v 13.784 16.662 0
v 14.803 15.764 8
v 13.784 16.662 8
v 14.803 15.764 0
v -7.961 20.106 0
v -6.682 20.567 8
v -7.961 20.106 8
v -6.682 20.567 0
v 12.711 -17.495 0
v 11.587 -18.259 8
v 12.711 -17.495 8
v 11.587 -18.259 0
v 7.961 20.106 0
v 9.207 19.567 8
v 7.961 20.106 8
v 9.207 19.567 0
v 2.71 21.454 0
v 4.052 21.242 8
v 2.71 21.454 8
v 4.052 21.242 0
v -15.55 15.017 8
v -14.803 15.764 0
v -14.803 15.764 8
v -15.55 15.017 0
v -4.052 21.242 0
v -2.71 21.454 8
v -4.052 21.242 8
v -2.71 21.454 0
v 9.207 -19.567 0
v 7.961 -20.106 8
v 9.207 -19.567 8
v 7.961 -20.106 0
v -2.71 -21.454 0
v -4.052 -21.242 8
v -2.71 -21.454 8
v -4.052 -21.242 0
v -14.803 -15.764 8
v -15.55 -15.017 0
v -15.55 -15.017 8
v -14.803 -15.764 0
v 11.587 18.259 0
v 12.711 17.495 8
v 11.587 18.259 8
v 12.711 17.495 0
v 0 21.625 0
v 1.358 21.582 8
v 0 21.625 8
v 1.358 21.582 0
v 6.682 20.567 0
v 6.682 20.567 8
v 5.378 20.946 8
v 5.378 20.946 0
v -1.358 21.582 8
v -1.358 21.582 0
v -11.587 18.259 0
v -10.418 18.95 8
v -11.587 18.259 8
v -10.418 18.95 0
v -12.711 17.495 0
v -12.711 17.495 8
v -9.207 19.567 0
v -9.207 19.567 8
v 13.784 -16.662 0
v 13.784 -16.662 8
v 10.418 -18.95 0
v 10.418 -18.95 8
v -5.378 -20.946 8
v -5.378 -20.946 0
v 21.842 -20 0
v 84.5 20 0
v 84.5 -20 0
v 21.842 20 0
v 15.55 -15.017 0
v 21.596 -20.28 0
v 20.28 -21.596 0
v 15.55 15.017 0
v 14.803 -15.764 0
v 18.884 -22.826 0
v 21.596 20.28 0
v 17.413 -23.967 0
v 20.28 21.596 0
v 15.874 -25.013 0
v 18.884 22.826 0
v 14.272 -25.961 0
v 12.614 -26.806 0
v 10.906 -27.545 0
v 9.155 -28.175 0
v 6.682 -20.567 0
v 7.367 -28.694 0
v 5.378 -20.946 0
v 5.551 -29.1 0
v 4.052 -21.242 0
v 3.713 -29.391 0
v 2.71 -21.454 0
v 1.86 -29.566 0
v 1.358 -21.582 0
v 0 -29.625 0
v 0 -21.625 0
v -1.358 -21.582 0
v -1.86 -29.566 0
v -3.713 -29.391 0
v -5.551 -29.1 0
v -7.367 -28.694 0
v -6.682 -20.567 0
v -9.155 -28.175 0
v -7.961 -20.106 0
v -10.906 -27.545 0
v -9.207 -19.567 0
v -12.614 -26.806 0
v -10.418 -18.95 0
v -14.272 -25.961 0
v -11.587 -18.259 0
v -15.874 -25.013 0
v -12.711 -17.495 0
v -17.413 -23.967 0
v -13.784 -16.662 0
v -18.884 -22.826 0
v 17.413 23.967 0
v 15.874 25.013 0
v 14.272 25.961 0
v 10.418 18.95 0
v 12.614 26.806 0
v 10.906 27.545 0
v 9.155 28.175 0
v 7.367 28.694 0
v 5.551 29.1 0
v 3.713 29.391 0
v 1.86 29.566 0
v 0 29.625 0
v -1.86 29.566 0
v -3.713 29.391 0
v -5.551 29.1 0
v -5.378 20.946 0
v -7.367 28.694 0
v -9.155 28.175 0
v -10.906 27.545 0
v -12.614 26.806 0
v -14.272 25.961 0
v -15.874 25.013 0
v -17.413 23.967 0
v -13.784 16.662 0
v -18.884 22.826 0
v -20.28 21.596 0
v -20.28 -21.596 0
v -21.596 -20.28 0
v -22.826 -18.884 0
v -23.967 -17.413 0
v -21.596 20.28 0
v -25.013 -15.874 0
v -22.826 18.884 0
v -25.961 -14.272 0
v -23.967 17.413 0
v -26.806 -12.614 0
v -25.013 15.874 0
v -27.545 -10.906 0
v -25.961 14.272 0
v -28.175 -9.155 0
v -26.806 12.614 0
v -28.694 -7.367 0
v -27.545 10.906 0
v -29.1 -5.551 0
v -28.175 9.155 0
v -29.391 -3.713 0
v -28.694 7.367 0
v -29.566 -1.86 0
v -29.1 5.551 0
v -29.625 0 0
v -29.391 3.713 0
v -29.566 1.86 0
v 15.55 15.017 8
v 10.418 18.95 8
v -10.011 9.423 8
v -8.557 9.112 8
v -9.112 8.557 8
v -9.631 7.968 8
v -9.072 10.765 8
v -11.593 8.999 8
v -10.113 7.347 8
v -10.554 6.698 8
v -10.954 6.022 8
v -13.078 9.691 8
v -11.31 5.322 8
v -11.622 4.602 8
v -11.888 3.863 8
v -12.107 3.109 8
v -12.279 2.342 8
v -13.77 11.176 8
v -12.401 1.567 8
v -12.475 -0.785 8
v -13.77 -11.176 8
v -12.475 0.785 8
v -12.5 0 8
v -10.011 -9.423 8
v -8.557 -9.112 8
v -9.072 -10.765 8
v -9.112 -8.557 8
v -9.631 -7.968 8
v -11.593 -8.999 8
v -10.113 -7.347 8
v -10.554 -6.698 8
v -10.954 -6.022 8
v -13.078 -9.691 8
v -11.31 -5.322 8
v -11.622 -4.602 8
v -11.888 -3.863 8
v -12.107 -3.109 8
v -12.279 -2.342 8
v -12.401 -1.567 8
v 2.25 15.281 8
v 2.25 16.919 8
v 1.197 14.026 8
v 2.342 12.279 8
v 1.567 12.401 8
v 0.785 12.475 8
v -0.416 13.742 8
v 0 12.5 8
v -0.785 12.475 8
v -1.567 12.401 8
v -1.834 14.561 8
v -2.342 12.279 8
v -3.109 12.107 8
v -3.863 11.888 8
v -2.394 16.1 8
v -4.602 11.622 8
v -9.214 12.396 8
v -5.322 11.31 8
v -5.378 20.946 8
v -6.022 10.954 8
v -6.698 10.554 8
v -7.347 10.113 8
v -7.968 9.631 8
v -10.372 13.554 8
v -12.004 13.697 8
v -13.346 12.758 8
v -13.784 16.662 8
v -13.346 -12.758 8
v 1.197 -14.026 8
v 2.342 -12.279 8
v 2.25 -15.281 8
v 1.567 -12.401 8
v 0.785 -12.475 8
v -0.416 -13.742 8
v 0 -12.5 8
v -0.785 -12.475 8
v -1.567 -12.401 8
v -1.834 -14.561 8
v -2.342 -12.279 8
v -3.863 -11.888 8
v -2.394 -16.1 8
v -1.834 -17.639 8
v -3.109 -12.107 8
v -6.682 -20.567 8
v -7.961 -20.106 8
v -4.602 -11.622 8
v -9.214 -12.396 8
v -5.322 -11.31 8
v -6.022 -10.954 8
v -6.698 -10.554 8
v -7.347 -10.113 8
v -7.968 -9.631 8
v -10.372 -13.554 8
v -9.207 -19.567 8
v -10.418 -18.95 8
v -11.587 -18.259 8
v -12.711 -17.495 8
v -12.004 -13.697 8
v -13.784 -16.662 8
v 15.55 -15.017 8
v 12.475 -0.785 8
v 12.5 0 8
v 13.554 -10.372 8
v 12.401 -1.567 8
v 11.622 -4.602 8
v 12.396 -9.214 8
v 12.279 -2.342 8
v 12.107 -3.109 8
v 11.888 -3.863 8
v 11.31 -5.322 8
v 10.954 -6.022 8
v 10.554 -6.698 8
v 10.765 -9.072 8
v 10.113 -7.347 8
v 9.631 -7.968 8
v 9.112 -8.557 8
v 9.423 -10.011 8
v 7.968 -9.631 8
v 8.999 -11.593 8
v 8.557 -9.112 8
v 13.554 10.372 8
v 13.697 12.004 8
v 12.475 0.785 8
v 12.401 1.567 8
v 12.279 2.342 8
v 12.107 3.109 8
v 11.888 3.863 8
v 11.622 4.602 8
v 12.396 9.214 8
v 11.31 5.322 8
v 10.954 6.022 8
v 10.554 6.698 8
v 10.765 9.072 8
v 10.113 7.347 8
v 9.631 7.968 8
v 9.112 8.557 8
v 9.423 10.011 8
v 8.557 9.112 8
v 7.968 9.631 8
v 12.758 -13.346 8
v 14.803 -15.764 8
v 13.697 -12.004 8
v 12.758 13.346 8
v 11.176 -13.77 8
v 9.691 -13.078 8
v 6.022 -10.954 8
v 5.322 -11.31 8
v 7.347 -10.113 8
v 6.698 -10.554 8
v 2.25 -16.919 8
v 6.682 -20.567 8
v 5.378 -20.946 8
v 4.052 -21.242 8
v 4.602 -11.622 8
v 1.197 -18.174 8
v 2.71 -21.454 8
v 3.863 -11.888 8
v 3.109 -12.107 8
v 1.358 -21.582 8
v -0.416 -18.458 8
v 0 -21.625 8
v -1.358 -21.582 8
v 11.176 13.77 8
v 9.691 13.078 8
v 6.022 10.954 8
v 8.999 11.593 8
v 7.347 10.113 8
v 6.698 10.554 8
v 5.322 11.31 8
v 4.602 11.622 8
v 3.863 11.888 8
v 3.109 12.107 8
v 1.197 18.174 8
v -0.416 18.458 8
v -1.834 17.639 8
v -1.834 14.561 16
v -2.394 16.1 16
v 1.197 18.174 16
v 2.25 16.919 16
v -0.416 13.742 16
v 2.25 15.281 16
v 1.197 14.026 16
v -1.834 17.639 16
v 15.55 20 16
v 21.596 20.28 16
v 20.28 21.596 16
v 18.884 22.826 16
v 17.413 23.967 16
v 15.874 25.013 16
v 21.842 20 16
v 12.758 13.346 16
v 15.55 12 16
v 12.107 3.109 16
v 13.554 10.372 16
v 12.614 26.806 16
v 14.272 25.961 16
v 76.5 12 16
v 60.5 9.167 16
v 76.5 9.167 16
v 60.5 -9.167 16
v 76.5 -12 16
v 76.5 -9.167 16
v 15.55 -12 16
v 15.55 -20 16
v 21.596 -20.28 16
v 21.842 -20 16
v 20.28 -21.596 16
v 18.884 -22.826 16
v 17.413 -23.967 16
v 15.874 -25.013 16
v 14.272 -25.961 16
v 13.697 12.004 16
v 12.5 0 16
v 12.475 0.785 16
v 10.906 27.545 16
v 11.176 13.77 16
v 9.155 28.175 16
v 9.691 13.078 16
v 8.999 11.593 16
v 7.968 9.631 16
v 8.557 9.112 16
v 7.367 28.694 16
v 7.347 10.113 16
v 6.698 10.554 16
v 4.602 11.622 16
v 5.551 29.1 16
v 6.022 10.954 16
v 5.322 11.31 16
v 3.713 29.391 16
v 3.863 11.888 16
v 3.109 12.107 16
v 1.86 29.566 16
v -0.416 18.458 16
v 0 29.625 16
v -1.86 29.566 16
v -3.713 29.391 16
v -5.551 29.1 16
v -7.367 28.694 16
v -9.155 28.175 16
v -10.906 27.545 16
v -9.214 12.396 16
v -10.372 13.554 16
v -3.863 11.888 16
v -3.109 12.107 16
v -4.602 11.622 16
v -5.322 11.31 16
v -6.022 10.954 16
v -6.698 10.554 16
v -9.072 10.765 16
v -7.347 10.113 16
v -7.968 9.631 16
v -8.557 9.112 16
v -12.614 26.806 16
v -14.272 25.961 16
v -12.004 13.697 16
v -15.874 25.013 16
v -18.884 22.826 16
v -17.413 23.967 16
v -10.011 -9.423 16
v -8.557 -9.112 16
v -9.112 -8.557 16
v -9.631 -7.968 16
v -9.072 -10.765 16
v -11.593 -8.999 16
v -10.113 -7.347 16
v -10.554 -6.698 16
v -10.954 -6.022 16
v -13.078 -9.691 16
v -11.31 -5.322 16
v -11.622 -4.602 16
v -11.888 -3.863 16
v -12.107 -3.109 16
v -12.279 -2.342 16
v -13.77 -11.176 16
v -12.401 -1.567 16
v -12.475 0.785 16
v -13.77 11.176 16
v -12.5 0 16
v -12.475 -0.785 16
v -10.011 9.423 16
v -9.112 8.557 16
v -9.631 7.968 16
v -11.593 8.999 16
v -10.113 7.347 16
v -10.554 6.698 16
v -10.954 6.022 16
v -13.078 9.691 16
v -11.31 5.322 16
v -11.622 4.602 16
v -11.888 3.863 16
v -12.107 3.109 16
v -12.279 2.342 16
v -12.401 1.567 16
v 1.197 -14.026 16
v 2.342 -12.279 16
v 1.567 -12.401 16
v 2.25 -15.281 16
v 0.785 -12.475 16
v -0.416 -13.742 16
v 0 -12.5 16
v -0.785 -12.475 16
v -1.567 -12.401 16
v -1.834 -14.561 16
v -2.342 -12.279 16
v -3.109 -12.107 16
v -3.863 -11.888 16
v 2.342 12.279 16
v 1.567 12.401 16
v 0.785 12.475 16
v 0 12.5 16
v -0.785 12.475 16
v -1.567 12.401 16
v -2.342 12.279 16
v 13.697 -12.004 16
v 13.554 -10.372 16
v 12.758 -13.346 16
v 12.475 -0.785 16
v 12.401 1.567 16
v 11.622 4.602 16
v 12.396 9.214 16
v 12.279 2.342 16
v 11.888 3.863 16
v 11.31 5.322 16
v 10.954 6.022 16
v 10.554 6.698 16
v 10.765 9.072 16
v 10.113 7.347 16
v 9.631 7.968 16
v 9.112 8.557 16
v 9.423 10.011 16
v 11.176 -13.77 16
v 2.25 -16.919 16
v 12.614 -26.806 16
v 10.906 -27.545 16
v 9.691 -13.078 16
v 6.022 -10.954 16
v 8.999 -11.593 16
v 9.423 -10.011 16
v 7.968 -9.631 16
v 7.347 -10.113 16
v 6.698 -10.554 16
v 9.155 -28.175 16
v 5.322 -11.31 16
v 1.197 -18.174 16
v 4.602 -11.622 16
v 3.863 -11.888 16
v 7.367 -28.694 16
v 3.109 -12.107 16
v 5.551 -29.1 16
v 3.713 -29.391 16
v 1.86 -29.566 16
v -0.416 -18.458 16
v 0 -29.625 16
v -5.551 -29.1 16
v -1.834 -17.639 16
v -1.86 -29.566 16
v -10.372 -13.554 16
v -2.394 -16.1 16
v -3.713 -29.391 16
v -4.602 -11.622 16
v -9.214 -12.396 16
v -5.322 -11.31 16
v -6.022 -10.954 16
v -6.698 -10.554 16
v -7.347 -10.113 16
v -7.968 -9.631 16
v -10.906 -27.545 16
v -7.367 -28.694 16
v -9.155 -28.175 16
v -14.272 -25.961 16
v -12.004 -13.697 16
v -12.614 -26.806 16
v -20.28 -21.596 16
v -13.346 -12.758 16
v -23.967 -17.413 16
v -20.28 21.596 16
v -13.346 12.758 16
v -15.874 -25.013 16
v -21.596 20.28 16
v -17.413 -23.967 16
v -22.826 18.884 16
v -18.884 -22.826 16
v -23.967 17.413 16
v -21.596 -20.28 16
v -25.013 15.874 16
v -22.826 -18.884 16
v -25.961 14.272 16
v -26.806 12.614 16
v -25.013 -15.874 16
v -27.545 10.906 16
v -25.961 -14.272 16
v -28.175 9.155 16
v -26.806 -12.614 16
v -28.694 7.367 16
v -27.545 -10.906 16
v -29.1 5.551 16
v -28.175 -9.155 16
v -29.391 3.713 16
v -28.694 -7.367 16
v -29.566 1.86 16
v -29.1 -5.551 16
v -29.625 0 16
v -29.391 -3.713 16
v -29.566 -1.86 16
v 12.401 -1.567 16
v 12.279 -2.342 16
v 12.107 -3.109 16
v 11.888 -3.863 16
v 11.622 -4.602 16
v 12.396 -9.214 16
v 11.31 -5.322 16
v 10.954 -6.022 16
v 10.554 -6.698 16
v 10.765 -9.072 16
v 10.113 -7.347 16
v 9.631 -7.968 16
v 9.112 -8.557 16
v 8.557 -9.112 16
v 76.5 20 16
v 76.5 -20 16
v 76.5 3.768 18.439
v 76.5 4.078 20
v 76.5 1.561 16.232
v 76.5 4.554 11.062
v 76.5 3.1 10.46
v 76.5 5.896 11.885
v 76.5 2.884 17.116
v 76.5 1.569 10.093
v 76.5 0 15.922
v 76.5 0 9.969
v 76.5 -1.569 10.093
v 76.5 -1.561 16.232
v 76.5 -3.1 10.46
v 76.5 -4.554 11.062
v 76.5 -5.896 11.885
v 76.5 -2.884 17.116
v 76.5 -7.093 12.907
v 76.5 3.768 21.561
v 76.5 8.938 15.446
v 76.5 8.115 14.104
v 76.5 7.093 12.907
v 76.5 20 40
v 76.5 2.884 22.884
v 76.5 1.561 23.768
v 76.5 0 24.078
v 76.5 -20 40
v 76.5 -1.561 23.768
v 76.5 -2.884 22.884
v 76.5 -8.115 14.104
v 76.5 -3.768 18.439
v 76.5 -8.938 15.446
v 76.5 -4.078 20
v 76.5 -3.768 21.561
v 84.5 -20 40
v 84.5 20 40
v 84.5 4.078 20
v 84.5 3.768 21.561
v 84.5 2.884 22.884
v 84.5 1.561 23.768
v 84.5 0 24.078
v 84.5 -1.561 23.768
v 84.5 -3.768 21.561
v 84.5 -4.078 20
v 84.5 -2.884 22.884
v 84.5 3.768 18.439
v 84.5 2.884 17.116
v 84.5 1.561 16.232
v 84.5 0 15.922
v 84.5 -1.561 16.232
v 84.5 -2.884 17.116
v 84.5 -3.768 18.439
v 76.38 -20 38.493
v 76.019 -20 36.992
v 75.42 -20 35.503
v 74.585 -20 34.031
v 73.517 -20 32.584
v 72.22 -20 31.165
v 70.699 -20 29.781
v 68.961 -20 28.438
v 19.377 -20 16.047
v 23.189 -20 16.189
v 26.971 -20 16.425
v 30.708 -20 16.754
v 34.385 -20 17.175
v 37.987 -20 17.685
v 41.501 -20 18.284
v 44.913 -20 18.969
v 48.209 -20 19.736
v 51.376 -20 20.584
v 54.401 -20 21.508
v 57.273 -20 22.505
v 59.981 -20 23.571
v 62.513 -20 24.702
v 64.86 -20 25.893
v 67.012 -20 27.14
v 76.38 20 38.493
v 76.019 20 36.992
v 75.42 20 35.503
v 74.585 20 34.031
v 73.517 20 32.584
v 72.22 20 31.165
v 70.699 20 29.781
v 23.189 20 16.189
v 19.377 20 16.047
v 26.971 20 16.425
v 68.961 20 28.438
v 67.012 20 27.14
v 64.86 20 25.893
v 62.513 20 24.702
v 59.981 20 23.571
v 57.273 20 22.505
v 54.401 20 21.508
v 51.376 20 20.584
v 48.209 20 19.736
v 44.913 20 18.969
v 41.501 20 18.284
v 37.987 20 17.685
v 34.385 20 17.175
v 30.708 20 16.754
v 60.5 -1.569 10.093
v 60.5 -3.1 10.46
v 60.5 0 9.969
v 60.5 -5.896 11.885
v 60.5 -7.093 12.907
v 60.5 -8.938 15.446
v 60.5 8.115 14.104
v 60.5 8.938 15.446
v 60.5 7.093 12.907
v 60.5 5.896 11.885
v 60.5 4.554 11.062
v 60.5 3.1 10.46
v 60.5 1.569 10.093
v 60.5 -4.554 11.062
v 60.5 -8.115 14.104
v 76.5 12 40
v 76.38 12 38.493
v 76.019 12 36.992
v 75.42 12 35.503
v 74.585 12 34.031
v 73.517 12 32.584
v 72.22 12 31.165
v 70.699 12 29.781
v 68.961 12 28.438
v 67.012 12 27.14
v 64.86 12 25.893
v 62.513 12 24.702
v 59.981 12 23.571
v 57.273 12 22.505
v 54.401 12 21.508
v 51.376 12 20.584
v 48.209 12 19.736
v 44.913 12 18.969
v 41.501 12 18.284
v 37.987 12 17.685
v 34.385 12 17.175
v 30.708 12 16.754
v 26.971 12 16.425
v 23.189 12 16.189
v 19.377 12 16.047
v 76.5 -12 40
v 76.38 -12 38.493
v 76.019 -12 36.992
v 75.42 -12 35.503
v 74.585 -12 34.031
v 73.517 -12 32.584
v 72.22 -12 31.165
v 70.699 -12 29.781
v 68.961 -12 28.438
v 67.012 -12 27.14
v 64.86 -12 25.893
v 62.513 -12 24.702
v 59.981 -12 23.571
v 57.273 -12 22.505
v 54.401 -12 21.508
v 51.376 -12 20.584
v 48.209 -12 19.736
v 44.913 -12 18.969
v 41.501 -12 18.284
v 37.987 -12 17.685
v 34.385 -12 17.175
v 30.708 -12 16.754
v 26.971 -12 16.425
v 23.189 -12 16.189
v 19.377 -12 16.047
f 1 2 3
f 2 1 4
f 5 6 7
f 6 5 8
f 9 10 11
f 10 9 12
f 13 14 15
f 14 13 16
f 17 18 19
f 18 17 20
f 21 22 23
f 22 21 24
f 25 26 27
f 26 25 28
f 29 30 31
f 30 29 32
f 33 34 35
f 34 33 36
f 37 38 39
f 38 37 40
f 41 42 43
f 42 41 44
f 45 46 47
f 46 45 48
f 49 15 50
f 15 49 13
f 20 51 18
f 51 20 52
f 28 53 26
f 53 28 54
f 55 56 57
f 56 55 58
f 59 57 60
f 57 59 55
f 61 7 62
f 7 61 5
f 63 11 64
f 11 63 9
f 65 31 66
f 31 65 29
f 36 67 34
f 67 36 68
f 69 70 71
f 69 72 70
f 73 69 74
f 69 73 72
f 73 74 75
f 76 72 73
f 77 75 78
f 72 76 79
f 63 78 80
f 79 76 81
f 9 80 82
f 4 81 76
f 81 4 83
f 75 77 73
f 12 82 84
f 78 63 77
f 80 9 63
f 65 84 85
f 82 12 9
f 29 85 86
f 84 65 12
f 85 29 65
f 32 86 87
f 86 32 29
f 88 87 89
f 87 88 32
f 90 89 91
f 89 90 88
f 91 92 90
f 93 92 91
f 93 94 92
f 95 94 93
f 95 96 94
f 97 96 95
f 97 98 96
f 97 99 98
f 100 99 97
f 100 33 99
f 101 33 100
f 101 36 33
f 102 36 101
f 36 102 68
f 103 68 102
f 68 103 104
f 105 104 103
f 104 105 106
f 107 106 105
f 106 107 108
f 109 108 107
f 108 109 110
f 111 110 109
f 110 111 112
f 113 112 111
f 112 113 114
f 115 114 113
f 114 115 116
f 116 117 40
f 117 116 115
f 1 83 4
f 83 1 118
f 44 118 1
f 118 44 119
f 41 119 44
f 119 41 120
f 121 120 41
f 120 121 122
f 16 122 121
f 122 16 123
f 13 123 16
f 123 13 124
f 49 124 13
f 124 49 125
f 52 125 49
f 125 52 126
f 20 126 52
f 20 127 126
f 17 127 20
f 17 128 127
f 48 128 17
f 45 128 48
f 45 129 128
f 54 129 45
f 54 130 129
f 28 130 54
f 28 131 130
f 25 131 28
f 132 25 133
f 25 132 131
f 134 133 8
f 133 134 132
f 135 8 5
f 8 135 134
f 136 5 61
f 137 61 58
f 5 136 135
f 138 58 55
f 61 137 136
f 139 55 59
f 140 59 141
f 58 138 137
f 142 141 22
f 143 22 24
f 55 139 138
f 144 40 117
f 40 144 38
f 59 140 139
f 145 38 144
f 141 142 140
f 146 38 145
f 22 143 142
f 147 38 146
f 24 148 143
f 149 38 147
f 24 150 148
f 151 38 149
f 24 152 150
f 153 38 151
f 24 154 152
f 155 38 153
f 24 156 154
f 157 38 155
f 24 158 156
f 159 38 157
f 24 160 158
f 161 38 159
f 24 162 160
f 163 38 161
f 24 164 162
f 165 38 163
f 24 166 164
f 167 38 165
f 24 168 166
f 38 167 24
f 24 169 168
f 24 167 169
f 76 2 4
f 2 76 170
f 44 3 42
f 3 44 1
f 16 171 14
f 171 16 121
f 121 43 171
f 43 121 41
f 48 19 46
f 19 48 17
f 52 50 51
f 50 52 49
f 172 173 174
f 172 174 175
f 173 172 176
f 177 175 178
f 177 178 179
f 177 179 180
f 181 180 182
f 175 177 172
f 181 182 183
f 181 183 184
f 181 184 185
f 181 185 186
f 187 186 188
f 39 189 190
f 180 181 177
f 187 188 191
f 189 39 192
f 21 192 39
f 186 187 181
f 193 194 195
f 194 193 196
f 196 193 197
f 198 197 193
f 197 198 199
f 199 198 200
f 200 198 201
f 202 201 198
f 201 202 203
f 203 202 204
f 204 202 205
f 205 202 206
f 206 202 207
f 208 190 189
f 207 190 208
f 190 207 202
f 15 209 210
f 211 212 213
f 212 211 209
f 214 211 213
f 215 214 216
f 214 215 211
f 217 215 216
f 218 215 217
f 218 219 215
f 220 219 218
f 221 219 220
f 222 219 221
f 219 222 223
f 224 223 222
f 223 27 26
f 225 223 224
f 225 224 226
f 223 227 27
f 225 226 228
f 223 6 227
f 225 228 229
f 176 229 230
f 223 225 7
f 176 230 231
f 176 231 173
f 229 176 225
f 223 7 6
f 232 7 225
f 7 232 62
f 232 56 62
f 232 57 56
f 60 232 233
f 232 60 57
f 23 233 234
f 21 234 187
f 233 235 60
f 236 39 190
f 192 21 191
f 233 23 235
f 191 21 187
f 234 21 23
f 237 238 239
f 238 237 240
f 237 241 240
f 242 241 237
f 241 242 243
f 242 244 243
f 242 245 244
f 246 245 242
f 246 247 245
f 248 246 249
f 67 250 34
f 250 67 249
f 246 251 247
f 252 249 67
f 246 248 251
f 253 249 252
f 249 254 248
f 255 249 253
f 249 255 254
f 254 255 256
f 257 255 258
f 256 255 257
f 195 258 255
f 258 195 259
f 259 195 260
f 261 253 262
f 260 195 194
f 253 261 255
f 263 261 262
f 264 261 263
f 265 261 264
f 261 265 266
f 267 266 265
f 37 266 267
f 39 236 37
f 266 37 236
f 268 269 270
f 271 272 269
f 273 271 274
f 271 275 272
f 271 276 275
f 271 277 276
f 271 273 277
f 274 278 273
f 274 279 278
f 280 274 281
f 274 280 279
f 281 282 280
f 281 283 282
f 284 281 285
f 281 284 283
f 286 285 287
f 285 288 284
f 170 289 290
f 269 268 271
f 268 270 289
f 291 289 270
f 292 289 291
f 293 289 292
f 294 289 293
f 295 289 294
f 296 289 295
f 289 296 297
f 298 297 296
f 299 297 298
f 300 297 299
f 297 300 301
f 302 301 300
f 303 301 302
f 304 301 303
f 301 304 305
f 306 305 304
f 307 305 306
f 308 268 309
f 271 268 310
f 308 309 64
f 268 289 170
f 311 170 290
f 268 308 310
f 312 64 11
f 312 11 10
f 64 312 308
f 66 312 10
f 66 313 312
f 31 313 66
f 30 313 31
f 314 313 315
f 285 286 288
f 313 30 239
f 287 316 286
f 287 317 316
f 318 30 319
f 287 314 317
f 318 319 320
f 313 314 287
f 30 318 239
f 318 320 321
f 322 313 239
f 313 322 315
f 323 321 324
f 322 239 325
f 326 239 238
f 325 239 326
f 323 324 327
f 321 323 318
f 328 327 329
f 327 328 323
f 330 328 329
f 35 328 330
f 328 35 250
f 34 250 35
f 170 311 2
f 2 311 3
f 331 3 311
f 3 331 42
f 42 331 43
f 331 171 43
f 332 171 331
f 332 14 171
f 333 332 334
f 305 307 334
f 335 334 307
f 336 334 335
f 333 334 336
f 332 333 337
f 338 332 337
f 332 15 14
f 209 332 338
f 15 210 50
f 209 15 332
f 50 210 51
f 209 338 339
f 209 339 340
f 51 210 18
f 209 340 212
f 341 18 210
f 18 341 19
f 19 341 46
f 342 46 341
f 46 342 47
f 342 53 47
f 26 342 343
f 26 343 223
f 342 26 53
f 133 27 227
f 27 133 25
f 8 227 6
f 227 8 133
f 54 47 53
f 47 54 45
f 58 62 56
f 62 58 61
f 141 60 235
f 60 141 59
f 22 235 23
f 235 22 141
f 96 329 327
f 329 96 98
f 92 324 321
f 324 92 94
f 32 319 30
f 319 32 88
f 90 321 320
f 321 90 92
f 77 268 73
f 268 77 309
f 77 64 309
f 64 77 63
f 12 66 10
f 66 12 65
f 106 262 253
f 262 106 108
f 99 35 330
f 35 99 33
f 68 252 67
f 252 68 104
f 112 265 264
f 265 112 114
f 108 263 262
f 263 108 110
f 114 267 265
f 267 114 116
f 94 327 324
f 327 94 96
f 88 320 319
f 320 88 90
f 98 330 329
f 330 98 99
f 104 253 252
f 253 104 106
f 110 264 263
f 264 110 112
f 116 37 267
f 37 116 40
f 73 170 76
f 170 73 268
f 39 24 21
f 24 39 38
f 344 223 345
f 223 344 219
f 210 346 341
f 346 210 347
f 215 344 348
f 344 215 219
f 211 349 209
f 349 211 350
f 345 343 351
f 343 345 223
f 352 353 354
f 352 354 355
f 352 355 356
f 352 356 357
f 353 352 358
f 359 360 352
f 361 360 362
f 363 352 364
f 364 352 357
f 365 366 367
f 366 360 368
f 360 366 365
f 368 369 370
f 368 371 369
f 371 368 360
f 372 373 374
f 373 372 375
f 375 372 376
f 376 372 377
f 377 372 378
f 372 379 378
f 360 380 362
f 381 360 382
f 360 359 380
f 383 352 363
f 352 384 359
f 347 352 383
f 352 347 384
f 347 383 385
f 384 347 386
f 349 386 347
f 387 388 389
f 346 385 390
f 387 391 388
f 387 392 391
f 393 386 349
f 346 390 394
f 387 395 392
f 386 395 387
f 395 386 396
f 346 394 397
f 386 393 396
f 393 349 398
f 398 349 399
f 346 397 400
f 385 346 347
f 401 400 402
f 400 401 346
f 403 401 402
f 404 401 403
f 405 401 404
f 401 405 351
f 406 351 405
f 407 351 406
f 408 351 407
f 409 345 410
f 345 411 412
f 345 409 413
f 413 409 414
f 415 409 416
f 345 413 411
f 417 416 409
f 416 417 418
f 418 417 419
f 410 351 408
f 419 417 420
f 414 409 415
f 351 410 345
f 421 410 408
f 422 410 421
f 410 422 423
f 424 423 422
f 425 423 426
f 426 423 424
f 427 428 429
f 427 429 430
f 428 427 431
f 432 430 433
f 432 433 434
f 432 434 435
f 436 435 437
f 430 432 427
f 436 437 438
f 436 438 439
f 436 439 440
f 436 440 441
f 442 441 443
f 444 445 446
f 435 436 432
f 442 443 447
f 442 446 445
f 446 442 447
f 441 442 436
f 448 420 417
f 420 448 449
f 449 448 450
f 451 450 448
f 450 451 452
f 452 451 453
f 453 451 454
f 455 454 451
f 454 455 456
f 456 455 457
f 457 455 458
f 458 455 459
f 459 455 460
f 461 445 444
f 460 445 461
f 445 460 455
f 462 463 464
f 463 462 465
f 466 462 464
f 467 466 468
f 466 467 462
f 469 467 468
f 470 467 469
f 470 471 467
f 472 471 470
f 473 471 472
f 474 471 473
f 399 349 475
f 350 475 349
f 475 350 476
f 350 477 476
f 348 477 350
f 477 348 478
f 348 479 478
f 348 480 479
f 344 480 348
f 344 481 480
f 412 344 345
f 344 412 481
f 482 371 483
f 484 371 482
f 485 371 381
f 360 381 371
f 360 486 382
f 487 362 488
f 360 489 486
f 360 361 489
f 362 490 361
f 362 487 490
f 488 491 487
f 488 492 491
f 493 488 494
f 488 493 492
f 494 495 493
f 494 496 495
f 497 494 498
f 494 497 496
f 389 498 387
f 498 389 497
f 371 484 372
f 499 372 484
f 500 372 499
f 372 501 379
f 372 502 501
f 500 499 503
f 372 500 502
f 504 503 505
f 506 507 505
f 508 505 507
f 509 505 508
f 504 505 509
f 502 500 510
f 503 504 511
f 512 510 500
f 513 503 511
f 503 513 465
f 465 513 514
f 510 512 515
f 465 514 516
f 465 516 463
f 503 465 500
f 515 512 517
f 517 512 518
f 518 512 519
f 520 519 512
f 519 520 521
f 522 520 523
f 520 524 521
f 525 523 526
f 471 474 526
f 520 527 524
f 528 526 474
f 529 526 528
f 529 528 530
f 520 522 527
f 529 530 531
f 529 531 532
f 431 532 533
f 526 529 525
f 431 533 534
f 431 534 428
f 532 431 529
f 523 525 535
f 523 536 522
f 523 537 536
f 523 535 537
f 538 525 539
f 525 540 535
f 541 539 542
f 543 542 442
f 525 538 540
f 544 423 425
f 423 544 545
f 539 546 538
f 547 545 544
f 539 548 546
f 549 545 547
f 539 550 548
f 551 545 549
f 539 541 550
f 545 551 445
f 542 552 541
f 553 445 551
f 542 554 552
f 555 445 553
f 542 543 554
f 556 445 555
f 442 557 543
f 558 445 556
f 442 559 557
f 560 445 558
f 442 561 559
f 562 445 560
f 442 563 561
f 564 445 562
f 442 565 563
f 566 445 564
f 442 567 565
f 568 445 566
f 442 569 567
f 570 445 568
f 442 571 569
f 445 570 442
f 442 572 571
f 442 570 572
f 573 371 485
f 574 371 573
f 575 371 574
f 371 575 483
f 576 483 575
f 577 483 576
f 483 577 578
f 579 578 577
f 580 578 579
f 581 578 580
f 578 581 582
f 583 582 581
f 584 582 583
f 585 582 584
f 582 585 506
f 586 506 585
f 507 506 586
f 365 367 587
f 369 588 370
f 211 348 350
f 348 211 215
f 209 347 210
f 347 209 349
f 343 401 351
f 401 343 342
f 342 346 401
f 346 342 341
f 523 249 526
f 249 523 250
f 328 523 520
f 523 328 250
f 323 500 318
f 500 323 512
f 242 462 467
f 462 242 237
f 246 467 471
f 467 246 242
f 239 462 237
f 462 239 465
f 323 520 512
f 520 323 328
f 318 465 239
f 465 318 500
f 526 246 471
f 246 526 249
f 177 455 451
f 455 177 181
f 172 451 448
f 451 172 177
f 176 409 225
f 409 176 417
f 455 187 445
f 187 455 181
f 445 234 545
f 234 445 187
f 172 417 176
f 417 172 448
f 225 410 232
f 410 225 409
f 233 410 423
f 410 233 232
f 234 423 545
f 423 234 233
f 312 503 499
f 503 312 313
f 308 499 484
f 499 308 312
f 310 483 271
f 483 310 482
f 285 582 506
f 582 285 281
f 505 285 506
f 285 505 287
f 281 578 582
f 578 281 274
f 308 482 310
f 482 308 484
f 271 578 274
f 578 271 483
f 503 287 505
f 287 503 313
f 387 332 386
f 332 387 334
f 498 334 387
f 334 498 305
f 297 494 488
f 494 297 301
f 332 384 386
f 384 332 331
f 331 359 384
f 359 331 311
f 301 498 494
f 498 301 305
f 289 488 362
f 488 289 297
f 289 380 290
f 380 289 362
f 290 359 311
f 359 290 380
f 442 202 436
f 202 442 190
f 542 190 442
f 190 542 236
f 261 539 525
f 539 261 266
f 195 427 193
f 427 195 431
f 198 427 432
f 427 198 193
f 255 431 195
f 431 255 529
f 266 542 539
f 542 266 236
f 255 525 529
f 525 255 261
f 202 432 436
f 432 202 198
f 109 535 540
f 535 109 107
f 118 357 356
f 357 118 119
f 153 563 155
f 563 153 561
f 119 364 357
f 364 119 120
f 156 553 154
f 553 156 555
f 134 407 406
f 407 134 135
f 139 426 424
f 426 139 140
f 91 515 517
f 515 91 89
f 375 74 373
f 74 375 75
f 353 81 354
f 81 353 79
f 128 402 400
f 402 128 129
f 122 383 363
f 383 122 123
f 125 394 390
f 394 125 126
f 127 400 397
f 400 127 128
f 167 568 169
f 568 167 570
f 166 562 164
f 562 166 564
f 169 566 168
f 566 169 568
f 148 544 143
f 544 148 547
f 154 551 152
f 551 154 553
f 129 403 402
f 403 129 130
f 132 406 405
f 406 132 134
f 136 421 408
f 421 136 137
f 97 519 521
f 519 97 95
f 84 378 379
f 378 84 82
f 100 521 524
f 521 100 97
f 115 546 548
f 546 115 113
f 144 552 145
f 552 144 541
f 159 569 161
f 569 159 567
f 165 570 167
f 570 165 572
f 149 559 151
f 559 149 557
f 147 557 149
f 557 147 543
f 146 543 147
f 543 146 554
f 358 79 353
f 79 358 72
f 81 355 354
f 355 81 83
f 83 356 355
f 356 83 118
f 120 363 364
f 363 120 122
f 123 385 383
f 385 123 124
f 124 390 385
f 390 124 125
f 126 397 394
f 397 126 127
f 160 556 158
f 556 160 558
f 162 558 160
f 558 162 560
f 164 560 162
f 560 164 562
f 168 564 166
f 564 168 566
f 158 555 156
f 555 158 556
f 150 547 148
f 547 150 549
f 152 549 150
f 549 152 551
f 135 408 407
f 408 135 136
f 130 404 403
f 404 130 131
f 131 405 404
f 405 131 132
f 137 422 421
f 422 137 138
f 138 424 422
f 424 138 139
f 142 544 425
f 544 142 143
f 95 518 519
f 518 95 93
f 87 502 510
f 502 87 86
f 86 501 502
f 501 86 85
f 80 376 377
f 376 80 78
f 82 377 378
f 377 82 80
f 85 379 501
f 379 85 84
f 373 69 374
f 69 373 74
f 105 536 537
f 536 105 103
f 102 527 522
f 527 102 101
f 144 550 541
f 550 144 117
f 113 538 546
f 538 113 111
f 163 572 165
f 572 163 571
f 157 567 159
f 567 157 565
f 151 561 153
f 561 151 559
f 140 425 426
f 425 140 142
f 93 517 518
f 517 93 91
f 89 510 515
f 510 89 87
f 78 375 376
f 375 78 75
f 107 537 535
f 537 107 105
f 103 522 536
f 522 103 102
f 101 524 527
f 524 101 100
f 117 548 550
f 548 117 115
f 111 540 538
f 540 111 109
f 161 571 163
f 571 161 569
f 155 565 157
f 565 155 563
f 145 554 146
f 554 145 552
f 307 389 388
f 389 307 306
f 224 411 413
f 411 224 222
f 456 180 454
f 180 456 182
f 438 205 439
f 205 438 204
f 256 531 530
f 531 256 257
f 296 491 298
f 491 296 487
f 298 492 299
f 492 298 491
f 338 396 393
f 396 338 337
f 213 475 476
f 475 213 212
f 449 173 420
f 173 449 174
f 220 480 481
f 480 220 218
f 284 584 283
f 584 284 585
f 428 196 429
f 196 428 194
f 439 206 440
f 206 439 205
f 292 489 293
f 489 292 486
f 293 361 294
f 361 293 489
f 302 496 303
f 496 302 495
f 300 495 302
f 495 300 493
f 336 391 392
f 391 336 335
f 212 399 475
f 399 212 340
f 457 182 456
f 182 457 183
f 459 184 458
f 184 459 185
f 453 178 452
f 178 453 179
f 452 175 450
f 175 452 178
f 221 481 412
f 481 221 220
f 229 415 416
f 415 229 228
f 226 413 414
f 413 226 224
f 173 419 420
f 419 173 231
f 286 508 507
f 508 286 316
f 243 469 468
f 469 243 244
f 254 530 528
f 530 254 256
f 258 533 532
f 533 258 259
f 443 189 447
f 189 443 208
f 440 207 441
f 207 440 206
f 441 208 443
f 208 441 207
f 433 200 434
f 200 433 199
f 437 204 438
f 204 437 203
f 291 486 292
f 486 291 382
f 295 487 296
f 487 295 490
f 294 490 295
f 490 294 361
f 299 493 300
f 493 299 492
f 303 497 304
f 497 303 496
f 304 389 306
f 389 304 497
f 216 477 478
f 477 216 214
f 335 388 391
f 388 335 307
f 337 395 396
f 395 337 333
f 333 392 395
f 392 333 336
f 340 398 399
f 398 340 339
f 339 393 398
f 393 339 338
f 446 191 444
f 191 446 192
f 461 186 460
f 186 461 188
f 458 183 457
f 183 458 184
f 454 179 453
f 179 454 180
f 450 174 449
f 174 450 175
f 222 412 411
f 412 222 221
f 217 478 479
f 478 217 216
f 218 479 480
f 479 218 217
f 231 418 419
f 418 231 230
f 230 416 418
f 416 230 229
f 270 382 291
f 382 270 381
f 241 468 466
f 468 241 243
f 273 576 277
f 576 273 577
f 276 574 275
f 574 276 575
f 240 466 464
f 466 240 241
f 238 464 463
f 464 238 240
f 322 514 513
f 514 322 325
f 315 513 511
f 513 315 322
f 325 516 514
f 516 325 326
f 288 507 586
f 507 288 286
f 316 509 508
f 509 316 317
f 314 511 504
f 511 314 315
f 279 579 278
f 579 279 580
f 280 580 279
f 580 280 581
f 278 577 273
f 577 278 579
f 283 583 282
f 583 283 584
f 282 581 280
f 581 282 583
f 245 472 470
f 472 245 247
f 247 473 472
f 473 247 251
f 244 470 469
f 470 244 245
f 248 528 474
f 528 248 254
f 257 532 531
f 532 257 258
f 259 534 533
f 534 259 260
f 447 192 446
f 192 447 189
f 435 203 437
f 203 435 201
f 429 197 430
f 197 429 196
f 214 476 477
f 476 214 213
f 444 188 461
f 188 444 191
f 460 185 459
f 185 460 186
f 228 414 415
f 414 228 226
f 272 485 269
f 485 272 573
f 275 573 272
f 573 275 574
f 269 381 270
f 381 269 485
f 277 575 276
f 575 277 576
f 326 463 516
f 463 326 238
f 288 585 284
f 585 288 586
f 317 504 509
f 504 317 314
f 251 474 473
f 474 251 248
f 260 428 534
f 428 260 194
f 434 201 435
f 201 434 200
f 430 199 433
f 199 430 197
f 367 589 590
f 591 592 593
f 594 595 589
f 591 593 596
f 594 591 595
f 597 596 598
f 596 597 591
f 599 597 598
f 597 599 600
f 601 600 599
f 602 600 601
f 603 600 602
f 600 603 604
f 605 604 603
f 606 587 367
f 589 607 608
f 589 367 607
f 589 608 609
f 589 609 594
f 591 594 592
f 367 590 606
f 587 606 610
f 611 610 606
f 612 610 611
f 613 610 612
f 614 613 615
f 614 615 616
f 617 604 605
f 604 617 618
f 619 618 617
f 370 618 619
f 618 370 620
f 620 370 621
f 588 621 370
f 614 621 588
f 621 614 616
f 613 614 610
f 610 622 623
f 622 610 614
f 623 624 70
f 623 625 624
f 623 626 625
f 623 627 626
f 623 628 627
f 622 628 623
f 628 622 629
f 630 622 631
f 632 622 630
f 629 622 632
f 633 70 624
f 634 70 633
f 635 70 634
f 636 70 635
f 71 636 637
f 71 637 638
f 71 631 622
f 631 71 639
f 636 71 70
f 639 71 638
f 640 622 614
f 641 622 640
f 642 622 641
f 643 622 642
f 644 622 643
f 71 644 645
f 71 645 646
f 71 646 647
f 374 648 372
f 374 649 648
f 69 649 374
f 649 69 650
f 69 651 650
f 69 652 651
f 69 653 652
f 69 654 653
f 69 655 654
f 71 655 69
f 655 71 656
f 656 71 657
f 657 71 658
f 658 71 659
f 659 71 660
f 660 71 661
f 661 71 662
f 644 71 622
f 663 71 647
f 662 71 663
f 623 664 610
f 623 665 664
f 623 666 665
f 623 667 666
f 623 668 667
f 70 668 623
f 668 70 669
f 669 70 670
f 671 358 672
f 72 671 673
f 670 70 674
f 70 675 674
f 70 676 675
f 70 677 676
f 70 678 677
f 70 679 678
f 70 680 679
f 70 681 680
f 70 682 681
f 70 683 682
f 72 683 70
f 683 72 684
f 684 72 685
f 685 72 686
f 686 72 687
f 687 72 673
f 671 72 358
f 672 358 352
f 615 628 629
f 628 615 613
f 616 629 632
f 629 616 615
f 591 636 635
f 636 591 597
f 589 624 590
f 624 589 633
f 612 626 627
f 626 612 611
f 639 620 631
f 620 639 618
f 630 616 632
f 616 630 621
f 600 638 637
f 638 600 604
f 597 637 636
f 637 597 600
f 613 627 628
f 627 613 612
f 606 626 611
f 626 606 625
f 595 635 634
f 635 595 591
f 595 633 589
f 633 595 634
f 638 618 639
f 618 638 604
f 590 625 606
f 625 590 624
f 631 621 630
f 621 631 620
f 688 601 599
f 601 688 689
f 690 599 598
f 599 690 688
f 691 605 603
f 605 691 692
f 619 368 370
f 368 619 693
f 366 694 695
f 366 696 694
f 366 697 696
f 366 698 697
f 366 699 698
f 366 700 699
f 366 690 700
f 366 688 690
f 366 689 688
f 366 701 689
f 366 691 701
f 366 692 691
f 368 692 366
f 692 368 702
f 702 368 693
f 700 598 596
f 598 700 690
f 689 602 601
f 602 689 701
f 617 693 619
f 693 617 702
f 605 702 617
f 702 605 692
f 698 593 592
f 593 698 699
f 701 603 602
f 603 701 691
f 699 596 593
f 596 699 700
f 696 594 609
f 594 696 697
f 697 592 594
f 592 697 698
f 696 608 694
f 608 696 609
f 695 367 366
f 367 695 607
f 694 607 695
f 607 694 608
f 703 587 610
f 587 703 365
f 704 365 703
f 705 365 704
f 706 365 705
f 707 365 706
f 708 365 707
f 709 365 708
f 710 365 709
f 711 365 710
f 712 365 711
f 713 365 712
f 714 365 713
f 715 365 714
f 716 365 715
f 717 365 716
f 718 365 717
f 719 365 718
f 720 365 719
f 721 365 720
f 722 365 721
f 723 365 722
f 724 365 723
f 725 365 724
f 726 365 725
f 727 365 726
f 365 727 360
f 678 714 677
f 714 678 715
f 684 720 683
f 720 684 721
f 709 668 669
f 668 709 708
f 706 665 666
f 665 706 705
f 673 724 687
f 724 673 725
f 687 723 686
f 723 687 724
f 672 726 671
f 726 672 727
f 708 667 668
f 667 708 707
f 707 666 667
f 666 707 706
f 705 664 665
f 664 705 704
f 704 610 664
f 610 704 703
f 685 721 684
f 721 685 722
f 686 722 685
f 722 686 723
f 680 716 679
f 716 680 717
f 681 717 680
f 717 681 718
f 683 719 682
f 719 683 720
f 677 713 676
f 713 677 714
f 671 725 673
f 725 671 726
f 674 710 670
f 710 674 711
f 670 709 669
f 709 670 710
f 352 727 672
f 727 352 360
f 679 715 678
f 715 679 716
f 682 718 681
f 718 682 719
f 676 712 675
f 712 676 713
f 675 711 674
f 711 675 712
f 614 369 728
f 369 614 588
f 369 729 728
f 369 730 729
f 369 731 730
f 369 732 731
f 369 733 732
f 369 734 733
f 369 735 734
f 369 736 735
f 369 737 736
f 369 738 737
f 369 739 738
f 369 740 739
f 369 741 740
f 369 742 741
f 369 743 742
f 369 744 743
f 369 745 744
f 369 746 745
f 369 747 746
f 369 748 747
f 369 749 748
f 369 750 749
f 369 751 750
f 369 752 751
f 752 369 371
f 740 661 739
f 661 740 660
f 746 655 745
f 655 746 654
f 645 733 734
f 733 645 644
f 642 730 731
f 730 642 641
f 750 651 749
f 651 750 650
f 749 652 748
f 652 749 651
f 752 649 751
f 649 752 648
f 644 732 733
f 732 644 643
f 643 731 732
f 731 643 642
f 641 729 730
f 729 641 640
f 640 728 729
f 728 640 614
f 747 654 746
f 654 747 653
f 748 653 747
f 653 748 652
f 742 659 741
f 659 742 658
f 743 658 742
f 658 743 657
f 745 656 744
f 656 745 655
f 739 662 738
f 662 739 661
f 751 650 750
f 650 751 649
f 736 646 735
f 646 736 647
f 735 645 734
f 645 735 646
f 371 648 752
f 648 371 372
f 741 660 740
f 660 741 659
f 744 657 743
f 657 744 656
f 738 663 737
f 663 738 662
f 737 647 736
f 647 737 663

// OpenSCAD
use <MCAD/polyholes.scad>;



$fn = 100;

thick = 8;

extrusion_w = 40.0; //mm
extrusion_h = 40.0; //mm
extrusion_bolt_d = 8.0; //mm
extrusion_mount_h = 40.0; //mm

frame_mount_bolt_r  =  2.575;  //mm
frame_mount_pitch   = 25.4;    //mm

nut_o_d      =        42.25;    //mm
nut_i_d      =         24.0;    //mm
nut_h        =         35.5;    //mm
nut_collar_h =          8.5;    //mm
nut_o_tol    =          1.0;    //mm
nut_chamfer =         30.1;    //mm

nut_mount_hole_d =  4.5;    //mm
nut_mount_pitch   = 32.2;    //mm

// this is from the lower ballscrew mount.  TODO:  refactor

bearing_o_d   =         22.0;    //mm
bearing_i_d   =          8.0;    //mm
bearing_h     =          7.0;    //mm
bearing_o_tol =          1.0;    //mm

bearing_mount_r = ((bearing_o_d + bearing_o_tol) / 2.0) + thick;

extrusion_mount_l = (bearing_mount_r + extrusion_w + 25.0 - thick) - (nut_o_tol + nut_chamfer) / 2.0;

union () {
    %translate ([0, 0, thick]) difference () {
        cylinder(r = thick + (nut_i_d / 2.0) + (nut_o_tol / 2.0), h = nut_h - nut_collar_h);
        
    }
    difference () {
        cylinder(r = (nut_o_d + nut_o_tol) / 2.0 + thick, h = thick * 2.0);
        cylinder(r = (nut_i_d / 2.0) + (nut_o_tol / 2.0), h = nut_h - nut_collar_h);
        difference() {
            cylinder(r = (nut_o_d + nut_o_tol) / 2.0, h = thick);
            translate([(nut_o_d + nut_o_tol) / 2.0, 0, thick / 2.0]) cube([nut_o_d - nut_chamfer, nut_chamfer, thick], center = true);
            translate([-(nut_o_d + nut_o_tol) / 2.0, 0, thick / 2.0]) cube([nut_o_d - nut_chamfer, nut_chamfer, thick], center = true);
        }
        mount_hole_pair();
        rotate([0, 0, 45.0]) mount_hole_pair();
        rotate([0, 0, -45.0]) mount_hole_pair();
    }
    // extrusion mount
    union() {
        // the sticky out bit
        difference() {
            translate([(nut_o_tol + nut_chamfer) / 2.0, - extrusion_w / 2.0, 0]) cube([extrusion_mount_l, extrusion_w, thick * 2.0]);
            translate([(nut_o_tol + nut_chamfer) / 2.0 + extrusion_mount_l - thick * 2.0, 0, extrusion_mount_h / 2.0]) rotate([0, 90, 0]) polyhole(h = thick * 2.0, d = extrusion_bolt_d * 2.5);
        }
        // the mount itself
        translate([bearing_mount_r + extrusion_w + 25.0 - thick, - extrusion_w / 2.0, 0]) {
            difference () {
               
                cube([thick, extrusion_w, extrusion_mount_h]);
               
                translate([-1.0, extrusion_w / 2.0, extrusion_mount_h / 2.0]) rotate([0, 90, 0]) polyhole(h = thick + 2.0, d = extrusion_bolt_d);
                
            
                //resize([thick + 2.0, (extrusion_w - thick) * 2.0, thick * 4.0])       translate ([thick / 2.0 + 1.0, extrusion_w + thick, 0]) rotate([0, 90, 0]) cylinder(r= extrusion_w, h = thick + 2.0, center = true);
            }
        }
        // some side supports
        translate([(nut_o_tol + nut_chamfer) / 2.0, extrusion_w / 2.0 - thick, thick * 2.0]) {
            difference() {
                cube([extrusion_mount_l, thick, extrusion_h - thick * 2.0]);
                translate([0, thick + 1.0, extrusion_h - thick * 2.0])  resize([extrusion_mount_l * 2.0, thick + 2.0, (extrusion_h - thick * 2.0) * 2.0]) rotate([90, 0, 0]) cylinder(r = 1, h = 1, center = false);
            }
        }
        translate([(nut_o_tol + nut_chamfer) / 2.0, -extrusion_w / 2.0, thick * 2.0]) {
            difference() {
                cube([extrusion_mount_l, thick, extrusion_h - thick * 2.0]);
                translate([0, thick + 1.0, extrusion_h - thick * 2.0])  resize([extrusion_mount_l * 2.0, thick + 2.0, (extrusion_h - thick * 2.0) * 2.0]) rotate([90, 0, 0]) cylinder(r = 1, h = 1, center = false);
            }
        }
    } 
}

module mount_hole_pair() {
    translate([0, nut_mount_pitch / 2.0, thick]) polyhole(d = nut_mount_hole_d, h = thick);
    translate([0, -nut_mount_pitch / 2.0, thick]) polyhole(d = nut_mount_hole_d, h = thick);
}
